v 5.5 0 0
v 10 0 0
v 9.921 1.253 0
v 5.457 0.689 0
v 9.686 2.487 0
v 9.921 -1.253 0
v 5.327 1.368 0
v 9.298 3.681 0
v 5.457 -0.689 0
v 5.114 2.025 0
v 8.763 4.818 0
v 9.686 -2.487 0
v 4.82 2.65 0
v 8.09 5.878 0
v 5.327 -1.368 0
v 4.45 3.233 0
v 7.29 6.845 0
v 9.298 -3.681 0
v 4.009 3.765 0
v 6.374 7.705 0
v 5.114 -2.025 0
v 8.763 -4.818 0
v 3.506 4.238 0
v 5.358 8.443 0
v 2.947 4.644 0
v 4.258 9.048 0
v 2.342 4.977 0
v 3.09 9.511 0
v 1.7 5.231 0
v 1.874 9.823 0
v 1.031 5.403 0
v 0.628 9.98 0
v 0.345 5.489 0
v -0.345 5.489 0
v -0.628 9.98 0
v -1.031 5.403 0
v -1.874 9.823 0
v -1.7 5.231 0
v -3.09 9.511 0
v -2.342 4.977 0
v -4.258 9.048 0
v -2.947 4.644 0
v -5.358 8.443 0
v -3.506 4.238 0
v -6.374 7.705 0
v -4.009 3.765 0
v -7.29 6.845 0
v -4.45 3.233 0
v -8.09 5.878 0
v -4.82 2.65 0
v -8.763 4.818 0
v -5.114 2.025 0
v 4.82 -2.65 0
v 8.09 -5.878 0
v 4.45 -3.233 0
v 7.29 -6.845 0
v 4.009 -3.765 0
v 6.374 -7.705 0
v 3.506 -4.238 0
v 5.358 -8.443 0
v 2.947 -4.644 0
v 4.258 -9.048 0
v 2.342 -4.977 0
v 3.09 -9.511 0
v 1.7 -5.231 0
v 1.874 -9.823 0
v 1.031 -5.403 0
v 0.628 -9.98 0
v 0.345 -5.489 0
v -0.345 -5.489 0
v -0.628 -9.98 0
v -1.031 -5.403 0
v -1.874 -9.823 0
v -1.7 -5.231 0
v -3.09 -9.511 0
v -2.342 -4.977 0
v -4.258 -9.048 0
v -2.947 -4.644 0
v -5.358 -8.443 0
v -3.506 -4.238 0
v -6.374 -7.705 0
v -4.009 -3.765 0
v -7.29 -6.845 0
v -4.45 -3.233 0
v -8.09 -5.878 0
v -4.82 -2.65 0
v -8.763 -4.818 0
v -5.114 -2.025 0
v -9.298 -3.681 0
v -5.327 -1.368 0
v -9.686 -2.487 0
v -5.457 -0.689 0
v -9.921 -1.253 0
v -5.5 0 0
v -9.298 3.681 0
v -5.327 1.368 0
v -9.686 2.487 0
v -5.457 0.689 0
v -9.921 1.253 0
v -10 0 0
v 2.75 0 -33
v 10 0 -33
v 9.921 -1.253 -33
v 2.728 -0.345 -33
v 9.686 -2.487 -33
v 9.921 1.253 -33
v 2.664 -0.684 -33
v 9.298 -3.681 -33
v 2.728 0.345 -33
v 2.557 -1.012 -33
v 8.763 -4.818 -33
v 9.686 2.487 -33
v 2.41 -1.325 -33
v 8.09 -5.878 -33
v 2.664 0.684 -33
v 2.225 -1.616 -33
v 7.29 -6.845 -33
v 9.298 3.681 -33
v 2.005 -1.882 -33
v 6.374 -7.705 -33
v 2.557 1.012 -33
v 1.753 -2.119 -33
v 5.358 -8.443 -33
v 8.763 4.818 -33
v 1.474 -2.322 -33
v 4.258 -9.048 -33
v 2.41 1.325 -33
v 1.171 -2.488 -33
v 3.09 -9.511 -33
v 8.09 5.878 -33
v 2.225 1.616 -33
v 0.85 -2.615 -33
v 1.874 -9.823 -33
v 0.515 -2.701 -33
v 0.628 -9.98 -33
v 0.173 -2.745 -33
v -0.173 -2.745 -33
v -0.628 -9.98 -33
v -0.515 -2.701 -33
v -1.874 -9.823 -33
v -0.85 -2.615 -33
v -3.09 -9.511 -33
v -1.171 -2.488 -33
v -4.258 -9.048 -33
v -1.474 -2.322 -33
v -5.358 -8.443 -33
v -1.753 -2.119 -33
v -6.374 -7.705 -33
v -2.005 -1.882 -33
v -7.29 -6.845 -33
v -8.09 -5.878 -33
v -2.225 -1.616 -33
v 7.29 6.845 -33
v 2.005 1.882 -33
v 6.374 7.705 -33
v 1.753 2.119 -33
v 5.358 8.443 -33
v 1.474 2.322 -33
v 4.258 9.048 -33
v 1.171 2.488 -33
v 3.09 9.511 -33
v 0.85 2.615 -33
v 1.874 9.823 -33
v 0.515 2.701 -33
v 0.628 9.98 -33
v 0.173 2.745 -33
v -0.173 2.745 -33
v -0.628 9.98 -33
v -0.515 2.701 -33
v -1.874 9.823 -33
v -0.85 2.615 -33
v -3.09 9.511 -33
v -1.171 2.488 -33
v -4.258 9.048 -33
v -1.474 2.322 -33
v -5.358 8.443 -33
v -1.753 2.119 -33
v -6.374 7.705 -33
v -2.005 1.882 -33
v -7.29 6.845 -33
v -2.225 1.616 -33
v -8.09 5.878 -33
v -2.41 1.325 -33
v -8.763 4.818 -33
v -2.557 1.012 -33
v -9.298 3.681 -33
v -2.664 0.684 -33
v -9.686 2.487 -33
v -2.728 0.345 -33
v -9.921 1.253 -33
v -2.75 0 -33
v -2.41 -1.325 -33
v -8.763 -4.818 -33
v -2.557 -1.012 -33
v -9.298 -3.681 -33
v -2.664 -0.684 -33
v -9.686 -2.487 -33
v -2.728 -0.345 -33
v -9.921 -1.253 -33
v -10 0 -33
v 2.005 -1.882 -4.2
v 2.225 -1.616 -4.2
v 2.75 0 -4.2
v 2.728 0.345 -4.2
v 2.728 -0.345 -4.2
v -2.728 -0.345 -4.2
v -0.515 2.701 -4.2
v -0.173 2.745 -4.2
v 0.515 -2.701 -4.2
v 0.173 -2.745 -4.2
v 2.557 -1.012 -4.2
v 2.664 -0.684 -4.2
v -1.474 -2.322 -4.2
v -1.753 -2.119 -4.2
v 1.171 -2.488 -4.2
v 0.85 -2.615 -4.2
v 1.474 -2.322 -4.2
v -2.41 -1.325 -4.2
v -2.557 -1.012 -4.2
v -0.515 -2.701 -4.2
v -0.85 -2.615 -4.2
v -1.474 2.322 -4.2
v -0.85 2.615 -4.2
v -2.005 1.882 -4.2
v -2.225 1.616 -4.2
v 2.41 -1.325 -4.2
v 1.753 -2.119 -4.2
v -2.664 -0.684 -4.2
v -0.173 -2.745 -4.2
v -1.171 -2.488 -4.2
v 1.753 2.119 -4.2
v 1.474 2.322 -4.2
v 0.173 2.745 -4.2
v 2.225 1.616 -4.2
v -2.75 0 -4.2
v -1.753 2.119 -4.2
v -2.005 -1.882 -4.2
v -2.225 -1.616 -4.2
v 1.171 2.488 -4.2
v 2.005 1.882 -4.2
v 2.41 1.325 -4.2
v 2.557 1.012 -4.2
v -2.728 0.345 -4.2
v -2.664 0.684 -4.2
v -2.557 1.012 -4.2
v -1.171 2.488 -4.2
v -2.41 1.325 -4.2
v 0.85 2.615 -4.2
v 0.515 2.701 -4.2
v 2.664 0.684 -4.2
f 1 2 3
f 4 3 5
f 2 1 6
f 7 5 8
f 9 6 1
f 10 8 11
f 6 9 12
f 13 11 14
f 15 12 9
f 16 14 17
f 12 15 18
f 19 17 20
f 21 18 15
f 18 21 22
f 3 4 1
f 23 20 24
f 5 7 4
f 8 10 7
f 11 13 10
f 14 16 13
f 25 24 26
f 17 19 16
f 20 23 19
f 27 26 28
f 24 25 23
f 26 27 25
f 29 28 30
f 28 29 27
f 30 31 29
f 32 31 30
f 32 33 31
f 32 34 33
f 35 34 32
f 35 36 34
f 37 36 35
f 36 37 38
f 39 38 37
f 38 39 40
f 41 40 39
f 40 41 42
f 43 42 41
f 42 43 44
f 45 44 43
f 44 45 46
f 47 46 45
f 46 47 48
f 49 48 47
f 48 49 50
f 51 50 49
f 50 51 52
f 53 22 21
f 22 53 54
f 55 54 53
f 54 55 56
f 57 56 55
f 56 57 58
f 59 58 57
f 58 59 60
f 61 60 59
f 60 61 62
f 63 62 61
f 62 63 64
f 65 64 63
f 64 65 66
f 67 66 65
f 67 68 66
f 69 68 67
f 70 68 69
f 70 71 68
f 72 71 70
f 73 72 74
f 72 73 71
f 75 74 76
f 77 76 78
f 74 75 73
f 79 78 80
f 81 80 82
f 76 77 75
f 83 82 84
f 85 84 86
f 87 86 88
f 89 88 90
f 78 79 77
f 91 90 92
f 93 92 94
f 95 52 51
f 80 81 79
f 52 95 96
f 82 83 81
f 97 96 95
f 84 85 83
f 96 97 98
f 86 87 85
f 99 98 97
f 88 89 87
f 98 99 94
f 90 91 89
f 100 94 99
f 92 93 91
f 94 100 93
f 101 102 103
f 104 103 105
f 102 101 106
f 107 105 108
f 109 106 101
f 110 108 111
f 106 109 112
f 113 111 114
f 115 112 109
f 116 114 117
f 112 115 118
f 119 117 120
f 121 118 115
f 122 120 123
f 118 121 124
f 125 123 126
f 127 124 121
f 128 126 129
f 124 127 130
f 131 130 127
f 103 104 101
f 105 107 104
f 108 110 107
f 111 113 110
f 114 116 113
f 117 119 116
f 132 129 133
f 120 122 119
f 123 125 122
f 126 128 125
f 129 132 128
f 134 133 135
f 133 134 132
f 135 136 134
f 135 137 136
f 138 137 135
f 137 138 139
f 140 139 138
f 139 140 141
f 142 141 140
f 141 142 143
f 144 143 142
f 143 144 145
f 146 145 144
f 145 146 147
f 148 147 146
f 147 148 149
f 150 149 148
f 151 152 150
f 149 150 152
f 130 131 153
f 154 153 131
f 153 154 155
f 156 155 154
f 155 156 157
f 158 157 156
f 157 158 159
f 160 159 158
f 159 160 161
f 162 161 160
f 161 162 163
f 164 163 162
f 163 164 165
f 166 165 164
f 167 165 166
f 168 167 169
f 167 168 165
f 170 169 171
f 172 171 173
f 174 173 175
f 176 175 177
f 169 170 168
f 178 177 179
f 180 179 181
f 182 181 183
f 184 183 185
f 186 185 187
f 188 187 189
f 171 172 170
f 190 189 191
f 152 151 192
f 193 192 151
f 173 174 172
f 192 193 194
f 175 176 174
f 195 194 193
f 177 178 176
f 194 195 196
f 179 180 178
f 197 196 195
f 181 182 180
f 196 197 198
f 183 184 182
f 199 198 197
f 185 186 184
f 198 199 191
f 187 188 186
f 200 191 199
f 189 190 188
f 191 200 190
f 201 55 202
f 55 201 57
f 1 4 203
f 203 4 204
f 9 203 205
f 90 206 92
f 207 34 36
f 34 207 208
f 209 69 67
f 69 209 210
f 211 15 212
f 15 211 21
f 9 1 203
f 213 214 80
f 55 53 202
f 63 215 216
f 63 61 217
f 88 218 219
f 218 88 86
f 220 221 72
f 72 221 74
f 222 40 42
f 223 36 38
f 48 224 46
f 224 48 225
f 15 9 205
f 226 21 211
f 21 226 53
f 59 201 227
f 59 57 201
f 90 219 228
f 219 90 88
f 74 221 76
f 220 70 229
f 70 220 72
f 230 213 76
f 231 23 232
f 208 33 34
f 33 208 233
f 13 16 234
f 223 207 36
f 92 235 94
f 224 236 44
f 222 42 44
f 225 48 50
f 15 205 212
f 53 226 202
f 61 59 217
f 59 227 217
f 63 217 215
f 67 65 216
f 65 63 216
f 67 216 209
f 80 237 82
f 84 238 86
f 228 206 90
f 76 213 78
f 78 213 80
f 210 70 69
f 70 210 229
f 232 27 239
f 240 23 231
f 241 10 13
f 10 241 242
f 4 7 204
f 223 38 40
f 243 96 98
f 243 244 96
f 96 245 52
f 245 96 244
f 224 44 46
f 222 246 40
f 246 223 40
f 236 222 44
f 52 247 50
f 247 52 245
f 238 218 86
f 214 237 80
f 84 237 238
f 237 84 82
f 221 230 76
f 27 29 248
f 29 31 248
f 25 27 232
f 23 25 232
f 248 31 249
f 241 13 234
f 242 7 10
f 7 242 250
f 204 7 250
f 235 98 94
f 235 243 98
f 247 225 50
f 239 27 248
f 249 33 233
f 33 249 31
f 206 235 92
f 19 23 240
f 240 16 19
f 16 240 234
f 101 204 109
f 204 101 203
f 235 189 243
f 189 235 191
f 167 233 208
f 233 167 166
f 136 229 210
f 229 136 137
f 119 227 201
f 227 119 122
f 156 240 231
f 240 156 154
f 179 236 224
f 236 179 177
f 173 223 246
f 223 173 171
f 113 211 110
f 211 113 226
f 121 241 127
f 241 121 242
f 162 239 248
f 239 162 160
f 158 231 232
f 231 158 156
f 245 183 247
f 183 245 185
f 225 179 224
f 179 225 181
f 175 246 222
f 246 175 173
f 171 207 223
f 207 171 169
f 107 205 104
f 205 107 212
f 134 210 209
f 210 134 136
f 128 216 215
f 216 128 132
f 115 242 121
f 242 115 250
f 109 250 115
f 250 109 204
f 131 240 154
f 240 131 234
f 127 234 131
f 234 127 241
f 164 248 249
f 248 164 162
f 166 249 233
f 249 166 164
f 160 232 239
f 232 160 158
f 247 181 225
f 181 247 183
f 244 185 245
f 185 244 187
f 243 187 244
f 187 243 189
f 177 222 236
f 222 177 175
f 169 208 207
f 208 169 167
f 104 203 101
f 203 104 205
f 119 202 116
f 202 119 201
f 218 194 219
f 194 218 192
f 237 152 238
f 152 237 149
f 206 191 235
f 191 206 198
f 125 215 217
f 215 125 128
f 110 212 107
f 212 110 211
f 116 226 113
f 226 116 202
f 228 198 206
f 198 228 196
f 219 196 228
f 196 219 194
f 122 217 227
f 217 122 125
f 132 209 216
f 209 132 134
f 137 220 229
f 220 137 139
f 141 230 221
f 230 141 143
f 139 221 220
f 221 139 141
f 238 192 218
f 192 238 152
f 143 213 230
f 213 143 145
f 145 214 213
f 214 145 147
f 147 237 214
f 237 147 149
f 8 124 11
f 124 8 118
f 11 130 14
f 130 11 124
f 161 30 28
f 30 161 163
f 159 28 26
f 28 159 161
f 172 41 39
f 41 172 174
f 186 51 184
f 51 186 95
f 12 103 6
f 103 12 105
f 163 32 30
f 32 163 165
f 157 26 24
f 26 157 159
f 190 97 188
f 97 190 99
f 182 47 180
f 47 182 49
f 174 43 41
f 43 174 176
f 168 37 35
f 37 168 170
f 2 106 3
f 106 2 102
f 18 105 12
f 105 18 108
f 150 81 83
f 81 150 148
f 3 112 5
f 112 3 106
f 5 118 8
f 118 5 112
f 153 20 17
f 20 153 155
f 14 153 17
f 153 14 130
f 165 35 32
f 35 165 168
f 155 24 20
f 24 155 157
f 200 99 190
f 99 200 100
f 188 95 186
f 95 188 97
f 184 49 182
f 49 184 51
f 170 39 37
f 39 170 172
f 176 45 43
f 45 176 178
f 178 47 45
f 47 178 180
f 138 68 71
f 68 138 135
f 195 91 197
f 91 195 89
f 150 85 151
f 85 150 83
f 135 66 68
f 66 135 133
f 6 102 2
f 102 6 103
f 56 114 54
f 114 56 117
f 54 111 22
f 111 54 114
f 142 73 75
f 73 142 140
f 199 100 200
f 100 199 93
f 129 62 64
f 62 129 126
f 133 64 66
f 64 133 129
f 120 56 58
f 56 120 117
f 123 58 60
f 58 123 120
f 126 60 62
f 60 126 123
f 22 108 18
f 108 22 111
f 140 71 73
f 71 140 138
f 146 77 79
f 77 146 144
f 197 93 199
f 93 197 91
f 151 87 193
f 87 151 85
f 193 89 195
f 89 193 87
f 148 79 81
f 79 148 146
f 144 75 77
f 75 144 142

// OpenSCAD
$fn = 50;


difference() {
	union() {
		translate(v = [0, 0, -33.0000000000]) {
			cylinder(h = 33, r = 10.0000000000);
		}
		cylinder(h = 0, r = 13.0000000000);
	}
	union() {
		translate(v = [0, 0, 0]) {
			rotate(a = [0, 0, 0]) {
				difference() {
					union() {
						#translate(v = [0, 0, -33.0000000000]) {
							cylinder(h = 33, r = 2.2500000000);
						}
						#translate(v = [0, 0, -4.2000000000]) {
							cylinder(h = 4.2000000000, r1 = 2.7500000000, r2 = 5.5000000000);
						}
						#translate(v = [0, 0, -33.0000000000]) {
							cylinder(h = 33, r = 2.7500000000);
						}
						#translate(v = [0, 0, -33.0000000000]) {
							cylinder(h = 33, r = 2.2500000000);
						}
					}
					union();
				}
			}
		}
	}
}
